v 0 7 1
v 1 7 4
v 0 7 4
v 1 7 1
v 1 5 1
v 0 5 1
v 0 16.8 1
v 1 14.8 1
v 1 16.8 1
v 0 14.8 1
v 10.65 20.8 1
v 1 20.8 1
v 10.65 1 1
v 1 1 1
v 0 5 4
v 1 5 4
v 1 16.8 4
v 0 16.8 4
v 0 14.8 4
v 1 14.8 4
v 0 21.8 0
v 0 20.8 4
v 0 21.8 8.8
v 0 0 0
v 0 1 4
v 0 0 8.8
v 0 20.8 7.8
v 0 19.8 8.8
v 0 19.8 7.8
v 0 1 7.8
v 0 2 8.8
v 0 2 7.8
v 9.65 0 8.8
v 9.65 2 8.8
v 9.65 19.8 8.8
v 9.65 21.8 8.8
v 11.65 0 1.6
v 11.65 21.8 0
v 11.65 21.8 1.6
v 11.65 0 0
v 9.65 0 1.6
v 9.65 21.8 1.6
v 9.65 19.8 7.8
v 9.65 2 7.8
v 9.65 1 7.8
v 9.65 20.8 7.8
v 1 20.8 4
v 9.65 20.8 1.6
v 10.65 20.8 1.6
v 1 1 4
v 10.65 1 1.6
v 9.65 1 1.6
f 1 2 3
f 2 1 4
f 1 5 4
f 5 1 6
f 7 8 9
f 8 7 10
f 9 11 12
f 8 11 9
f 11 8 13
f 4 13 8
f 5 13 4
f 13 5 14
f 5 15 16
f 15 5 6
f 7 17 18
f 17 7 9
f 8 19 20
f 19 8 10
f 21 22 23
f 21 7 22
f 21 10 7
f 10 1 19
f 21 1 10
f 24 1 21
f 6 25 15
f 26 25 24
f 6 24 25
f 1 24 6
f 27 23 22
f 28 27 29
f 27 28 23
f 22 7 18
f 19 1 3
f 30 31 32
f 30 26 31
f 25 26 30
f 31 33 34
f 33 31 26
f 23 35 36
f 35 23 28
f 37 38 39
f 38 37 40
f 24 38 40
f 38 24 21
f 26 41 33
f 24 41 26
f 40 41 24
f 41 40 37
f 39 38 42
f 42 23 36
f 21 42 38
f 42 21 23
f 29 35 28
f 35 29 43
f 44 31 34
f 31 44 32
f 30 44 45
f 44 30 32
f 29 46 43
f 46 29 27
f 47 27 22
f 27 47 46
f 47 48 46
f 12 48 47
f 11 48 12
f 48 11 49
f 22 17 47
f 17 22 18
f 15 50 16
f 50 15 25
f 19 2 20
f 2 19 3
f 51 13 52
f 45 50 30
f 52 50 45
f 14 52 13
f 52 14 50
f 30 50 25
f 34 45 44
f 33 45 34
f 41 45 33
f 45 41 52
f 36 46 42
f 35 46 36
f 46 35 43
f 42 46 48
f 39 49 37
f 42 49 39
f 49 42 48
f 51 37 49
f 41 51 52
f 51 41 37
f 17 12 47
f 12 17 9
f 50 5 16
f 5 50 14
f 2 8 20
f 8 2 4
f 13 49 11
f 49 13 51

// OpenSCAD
module holder(switch_x, switch_y, switch_z) {

  difference() {
    cube([switch_x + 2, switch_y + 2, switch_z + 2], false);

    // cut top
    translate([-1, 2, switch_z])
      cube([switch_x + 2, switch_y - 2, 3], false);

    // cut lower back edge
    translate([-1, 1, 4])
      cube([3, switch_y, switch_z - 3], false);

    // cut lower front edge
    translate([switch_x, -1, 1.6])
      cube([switch_x, switch_y + 4, switch_z + 4], false);

    // cut jags
    for (y = [5, switch_y - 5])
      translate([-1, y, 1])
        cube([3, 2, 10], false);

    // cut switch
    translate([1, 1, 1])
      cube([switch_x, switch_y, switch_z], false);
  }

}

holder(9.65, 19.8, 6.8);
